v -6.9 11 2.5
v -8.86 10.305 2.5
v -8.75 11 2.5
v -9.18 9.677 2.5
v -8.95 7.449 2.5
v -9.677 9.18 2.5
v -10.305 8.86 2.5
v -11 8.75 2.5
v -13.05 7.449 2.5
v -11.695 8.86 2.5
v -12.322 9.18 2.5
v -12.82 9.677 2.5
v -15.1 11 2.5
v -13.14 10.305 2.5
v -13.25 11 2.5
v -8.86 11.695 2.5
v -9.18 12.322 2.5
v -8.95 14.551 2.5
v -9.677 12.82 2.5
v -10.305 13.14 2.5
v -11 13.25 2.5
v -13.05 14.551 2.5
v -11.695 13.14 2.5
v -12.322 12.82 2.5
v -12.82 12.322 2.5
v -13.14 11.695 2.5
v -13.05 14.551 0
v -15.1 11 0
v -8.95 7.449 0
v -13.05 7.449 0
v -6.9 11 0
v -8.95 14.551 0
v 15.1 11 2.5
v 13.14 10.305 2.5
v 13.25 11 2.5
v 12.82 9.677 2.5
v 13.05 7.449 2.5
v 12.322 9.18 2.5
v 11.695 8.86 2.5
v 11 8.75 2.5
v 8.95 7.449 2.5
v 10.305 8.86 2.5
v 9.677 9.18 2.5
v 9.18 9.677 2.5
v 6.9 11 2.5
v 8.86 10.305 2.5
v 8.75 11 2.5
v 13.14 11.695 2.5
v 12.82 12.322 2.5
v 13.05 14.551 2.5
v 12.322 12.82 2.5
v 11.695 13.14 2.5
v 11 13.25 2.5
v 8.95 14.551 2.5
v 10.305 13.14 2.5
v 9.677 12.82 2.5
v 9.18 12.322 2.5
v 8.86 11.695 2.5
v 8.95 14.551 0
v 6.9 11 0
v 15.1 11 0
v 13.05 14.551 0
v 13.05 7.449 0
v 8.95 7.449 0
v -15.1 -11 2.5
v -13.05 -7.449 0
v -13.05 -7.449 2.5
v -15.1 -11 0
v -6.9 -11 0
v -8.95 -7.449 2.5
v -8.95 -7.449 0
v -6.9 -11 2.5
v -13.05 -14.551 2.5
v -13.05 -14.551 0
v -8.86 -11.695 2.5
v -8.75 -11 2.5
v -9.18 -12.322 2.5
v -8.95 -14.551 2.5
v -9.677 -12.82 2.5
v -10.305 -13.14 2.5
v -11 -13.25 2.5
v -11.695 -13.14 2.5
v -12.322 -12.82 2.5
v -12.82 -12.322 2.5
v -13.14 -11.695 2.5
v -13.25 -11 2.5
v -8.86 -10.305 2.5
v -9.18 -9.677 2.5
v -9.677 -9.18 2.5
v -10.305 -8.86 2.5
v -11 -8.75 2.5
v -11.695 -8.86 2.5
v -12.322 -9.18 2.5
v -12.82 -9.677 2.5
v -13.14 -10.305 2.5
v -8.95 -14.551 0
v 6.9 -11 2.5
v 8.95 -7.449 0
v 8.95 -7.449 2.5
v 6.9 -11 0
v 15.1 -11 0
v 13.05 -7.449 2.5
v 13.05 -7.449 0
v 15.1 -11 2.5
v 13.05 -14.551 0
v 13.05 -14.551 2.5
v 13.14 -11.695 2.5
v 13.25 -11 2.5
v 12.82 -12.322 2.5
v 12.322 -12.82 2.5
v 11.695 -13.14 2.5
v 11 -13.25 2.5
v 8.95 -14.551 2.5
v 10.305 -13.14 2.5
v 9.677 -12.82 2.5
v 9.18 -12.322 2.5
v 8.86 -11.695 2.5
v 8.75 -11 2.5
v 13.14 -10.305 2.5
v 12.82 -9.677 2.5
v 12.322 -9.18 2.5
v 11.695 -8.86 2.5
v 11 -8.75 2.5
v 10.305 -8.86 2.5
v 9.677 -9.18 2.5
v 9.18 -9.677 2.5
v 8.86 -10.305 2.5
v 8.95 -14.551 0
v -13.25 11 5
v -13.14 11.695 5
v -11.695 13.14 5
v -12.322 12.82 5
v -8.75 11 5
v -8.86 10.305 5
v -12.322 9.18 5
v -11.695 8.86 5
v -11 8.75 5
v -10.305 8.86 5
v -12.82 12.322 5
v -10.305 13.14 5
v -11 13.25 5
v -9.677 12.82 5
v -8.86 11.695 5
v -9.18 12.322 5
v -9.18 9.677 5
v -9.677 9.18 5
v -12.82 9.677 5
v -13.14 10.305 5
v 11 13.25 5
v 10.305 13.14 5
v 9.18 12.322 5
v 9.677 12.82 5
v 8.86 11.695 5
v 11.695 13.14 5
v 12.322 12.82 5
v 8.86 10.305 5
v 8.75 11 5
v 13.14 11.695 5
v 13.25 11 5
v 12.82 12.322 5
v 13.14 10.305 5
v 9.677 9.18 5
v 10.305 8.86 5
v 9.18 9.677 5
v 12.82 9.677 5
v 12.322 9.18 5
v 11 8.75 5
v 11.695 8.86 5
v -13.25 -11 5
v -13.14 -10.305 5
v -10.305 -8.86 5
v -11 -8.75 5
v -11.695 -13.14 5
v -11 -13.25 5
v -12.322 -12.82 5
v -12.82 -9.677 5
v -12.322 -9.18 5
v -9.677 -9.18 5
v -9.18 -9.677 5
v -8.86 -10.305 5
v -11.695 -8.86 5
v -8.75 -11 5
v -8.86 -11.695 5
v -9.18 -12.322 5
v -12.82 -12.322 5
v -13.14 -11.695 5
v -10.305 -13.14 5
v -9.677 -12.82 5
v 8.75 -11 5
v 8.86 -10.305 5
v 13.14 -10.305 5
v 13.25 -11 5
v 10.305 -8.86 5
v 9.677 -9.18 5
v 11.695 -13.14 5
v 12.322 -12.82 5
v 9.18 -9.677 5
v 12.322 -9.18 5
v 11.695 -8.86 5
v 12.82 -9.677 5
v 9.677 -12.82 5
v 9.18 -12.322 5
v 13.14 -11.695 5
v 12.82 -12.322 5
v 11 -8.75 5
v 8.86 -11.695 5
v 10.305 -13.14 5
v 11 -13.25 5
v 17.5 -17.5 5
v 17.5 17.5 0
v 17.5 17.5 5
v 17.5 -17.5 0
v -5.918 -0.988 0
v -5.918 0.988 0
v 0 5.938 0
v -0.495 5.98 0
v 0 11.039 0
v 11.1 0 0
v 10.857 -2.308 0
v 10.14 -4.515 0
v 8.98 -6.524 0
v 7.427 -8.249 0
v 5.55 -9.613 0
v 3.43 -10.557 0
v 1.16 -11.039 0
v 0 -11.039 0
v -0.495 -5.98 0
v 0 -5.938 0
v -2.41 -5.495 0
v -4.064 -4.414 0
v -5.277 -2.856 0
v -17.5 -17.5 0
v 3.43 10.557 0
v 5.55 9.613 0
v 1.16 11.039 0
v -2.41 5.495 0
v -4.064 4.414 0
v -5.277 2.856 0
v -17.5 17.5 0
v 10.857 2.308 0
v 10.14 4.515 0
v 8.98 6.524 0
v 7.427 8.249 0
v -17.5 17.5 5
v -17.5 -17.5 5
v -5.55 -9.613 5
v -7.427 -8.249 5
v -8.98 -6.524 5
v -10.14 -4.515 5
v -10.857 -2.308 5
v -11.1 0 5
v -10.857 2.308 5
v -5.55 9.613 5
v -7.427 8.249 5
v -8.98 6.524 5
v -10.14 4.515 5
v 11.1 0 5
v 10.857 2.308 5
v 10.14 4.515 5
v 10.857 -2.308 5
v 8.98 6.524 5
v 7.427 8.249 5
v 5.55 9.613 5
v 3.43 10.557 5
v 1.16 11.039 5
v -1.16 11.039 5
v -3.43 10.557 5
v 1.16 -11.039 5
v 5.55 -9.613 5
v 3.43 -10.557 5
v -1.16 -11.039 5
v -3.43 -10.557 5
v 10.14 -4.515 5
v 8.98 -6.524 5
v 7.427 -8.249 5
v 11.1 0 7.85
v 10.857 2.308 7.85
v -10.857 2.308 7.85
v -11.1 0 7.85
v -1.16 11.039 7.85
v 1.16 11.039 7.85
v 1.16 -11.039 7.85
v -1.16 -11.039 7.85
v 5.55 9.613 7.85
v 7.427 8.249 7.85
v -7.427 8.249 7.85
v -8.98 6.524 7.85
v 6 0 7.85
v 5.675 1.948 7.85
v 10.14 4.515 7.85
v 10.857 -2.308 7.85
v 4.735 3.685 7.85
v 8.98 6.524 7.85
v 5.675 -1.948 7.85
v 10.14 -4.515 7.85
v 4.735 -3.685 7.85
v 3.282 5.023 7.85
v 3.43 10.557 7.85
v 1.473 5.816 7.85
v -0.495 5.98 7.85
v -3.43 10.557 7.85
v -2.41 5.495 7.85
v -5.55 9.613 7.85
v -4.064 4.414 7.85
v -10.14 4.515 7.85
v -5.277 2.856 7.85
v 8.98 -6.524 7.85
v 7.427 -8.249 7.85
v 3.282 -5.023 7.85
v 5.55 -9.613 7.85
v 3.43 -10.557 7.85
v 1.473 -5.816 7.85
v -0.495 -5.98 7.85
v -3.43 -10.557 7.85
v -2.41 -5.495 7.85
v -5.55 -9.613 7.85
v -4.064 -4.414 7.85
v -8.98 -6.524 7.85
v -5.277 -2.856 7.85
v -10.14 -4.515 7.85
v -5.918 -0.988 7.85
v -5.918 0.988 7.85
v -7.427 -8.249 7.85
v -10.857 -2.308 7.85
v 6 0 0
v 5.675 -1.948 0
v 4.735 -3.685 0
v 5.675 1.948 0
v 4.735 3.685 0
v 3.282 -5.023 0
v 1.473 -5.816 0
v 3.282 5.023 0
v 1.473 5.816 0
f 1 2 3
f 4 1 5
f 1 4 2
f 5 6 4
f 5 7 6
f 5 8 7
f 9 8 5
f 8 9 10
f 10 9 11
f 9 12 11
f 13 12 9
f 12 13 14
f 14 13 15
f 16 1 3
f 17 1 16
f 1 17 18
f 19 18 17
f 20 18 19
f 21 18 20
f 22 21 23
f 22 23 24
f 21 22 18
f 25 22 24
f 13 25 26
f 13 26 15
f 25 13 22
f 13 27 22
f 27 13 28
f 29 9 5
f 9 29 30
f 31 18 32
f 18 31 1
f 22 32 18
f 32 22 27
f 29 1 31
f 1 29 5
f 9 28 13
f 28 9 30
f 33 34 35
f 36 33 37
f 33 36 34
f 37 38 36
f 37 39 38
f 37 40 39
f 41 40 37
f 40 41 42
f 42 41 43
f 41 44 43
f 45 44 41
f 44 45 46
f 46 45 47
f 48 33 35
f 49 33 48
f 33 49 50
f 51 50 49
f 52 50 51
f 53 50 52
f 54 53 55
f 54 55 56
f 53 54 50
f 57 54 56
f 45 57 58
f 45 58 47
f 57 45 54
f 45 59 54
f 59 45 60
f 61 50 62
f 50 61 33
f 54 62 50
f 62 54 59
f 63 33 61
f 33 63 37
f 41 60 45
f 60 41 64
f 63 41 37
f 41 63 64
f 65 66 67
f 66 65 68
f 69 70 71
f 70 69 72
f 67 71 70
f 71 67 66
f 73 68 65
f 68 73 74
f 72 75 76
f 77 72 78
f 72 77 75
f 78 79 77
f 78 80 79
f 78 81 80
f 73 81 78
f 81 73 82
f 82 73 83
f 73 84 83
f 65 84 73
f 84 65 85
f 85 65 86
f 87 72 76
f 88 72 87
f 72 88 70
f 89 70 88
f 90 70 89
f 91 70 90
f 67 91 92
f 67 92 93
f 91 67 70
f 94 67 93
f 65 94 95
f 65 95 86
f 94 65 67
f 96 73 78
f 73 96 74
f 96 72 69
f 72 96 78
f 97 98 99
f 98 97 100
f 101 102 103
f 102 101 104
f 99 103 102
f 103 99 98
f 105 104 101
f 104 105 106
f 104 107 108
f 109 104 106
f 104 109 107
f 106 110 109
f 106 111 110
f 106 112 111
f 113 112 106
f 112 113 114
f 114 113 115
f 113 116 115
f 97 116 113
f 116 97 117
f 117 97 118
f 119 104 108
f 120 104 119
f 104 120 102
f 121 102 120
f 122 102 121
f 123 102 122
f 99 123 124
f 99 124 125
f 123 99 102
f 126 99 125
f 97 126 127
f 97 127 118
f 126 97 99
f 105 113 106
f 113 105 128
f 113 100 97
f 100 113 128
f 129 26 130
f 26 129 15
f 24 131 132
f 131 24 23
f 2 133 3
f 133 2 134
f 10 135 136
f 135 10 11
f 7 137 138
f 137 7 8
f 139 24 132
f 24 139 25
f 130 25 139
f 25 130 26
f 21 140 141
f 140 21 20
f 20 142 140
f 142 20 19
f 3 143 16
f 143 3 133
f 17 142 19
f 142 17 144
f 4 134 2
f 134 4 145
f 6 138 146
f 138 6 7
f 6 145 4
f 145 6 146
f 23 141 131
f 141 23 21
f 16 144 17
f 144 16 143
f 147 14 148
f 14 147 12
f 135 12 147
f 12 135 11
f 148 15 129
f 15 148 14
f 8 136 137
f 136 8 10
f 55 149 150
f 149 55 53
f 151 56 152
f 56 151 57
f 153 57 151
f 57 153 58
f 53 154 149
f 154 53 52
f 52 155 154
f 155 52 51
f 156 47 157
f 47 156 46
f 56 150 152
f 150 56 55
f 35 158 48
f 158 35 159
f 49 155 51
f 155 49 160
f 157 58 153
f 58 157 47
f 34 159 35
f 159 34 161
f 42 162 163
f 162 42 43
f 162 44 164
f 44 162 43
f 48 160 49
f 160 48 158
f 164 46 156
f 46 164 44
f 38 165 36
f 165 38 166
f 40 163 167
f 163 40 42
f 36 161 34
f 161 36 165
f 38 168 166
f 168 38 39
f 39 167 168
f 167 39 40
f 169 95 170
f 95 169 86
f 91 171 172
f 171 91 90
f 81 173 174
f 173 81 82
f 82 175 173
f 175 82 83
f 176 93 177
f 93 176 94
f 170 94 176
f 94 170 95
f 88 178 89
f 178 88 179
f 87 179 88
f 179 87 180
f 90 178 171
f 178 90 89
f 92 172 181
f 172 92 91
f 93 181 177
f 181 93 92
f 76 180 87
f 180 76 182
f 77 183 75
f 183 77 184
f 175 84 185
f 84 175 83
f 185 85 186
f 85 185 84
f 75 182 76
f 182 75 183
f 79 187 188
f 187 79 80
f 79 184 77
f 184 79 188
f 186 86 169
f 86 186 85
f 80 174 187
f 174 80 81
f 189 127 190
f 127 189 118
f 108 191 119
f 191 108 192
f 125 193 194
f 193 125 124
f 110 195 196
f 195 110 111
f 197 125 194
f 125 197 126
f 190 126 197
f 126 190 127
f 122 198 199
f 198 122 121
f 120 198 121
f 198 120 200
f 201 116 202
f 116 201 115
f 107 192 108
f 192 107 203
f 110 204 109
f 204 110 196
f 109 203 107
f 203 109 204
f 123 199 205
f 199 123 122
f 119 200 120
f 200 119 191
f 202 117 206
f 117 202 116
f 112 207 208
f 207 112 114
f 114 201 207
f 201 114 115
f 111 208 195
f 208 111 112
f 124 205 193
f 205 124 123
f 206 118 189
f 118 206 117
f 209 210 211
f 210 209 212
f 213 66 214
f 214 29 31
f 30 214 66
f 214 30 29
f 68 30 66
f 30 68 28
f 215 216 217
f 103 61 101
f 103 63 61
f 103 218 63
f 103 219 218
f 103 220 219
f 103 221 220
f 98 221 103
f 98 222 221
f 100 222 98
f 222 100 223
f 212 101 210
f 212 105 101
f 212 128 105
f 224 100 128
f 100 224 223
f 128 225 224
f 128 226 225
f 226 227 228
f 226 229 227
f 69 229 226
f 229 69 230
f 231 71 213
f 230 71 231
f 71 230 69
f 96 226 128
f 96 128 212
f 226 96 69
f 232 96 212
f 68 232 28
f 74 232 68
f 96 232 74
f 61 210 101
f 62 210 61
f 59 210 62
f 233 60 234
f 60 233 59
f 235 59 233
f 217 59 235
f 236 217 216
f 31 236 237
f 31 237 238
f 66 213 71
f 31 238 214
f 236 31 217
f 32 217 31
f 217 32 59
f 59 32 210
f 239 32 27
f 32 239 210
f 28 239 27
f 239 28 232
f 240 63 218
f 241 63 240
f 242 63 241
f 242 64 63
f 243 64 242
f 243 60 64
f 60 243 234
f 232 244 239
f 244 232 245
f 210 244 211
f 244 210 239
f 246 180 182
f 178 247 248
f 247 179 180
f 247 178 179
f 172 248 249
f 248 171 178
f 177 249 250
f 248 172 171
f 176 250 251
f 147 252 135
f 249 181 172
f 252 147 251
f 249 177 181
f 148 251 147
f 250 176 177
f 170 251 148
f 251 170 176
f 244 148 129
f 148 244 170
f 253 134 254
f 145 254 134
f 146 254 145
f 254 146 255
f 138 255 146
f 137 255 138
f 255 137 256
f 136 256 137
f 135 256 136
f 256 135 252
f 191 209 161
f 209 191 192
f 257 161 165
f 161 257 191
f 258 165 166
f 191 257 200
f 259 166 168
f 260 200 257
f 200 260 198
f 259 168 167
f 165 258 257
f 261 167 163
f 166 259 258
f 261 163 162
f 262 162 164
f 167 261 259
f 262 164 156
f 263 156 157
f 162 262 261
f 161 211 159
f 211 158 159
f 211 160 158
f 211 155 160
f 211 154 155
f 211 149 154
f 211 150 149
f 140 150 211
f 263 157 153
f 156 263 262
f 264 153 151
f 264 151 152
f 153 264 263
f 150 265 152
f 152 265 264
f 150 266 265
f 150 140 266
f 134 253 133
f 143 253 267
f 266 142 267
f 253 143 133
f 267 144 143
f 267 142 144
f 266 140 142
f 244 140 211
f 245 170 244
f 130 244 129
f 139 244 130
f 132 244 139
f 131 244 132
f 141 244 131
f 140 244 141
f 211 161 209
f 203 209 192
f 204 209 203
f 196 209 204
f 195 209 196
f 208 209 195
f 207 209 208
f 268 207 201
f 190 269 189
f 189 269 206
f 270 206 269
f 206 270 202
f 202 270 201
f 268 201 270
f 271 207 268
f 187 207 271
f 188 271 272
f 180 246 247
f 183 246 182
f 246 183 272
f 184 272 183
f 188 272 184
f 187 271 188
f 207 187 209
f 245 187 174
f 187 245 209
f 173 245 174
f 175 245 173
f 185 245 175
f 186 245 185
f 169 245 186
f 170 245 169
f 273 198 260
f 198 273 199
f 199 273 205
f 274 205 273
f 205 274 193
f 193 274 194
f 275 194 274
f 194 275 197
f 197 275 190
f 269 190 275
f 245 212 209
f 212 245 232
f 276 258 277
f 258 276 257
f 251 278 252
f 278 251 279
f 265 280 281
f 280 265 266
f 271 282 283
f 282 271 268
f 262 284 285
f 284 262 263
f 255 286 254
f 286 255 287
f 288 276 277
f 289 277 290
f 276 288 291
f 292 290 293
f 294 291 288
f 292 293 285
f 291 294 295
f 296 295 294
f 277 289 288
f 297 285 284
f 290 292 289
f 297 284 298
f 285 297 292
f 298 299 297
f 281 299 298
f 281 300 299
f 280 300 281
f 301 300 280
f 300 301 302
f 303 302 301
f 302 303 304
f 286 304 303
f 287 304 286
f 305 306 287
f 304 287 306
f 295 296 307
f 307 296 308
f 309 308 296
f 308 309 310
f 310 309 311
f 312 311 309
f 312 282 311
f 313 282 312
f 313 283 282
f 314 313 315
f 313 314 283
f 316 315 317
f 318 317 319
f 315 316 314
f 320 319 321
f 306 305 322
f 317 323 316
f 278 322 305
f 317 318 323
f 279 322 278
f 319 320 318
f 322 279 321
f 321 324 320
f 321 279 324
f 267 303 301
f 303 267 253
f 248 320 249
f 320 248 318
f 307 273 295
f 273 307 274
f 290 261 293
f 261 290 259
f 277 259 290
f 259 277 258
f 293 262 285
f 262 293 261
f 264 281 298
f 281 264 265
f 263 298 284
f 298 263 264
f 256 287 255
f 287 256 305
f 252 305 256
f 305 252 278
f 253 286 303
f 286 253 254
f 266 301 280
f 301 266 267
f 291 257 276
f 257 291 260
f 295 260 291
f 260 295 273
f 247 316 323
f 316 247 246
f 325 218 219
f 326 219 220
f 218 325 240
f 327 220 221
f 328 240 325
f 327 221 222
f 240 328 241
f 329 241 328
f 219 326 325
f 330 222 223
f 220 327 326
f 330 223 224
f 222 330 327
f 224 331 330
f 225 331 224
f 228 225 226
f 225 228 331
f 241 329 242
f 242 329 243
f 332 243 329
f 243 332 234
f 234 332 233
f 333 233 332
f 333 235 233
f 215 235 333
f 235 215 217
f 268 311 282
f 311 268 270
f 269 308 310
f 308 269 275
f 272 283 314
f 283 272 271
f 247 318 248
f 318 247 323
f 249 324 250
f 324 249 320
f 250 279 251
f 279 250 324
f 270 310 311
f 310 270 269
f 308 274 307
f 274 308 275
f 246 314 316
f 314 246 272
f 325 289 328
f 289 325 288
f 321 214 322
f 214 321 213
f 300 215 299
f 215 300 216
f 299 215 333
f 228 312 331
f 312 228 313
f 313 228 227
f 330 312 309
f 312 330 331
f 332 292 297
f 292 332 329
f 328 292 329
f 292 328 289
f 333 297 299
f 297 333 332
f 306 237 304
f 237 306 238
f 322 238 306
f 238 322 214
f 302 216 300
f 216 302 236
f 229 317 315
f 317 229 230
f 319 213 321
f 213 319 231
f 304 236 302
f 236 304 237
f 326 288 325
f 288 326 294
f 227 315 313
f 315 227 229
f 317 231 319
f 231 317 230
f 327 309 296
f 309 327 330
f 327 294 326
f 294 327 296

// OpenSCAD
/*
Abbrev.	Inner D.	Outer D.	Thickness	Notes
608		8 mm		22 mm		7 mm	A common roller skate bearing used extensively in RepRaps.
626		6 mm		19 mm		6 mm	 
625		5 mm		16 mm		5 mm	 
624		4 mm		13 mm		5 mm	 
623		3 mm		10 mm		4 mm	 
603		3 mm		9 mm		5 mm	 
*/

bearingInnerDia = 8; 		
bearingOuterDia = 22;	// outer dimensions
bearingThickness = 7;	// thickness
bearingClearance = 0.2;	// clearance around the outer dimensions

bearingDiameter = bearingOuterDia + bearingClearance;
wallThickness = 0.6;	// thickness of the wall

baseHeight = 1.7;	// base height
innerHeight = baseHeight * 2;
outerHeight = bearingThickness + baseHeight;

wallAscent = 3;		// mm to add to the bearing diameter for the outer ring
wallDescent = 0.5;	// mm to add to the bearing diameter for the inner ring

epsilon = 0.1; // small tolerance used for CSG subtraction/addition

clearance = 0.0;

// screw/nut dimensions
// http://www.fairburyfastener.com/xdims_metric_nuts.htm
screw_dia = 4.5;	// M3 = 3 mm, M4 = 4 mm - orig. 3.4
nut_dia = 8.2;		// M3 = 6 mm, M4 = 7.7 mm - orig. 6.5
nut_height = 2.5; 	// M3 = 2.3 mm, M4 = 3 mm - orig. 3

// mounting plate dimensions
plate_height = 5;
plate_length = 35;
plate_width = 35;
screw_space_x = 22;
screw_space_y = 22;

module mount_plate() {
	difference()
	{
		//bottom plate
		translate([-plate_width/2,-plate_length/2,0])
		cube([plate_width,plate_length,plate_height]);

		if (true) {
			// nut traps
			translate([screw_space_x/2,screw_space_y/2,plate_height-nut_height])
			cylinder(r=nut_dia/2, h=nut_height+epsilon, $fn=6);
			translate([-screw_space_x/2,screw_space_y/2,plate_height-nut_height])
			cylinder(r=nut_dia/2, h=nut_height+epsilon, $fn=6);
			translate([screw_space_x/2,-screw_space_y/2,plate_height-nut_height])
			cylinder(r=nut_dia/2, h=nut_height+epsilon, $fn=6);
			translate([-screw_space_x/2,-screw_space_y/2,plate_height-nut_height])
			cylinder(r=nut_dia/2, h=nut_height+epsilon, $fn=6);

			// screw holes
			translate([screw_space_x/2,screw_space_y/2,-epsilon])
			cylinder(r=screw_dia/2, h=plate_height+epsilon, $fn=20);
			translate([-screw_space_x/2,screw_space_y/2,-epsilon])
			cylinder(r=screw_dia/2, h=plate_height+epsilon, $fn=20);
			translate([screw_space_x/2,-screw_space_y/2,-epsilon])
			cylinder(r=screw_dia/2, h=plate_height+epsilon, $fn=20);
			translate([-screw_space_x/2,-screw_space_y/2,-epsilon])
			cylinder(r=screw_dia/2, h=plate_height+epsilon, $fn=20);
		}		
	}
}


module outer()
{
	difference()
	{
		cylinder(r=bearingDiameter/2+2*wallThickness+clearance,h=outerHeight);
		
		// space for the bearing
		translate([0,0,-epsilon])
		cylinder(r=bearingDiameter/2,h=outerHeight+2*epsilon);
		
		// upper rim
		translate([0,0,bearingThickness])
		cylinder(r=bearingDiameter/2+wallThickness+clearance,h=outerHeight);
	}

	difference()
	{
		cylinder(r=bearingDiameter/2+wallAscent,h=baseHeight);
		
		translate([0,0,-epsilon])
		cylinder(r=bearingDiameter/2-wallDescent,h=baseHeight+2*epsilon);
	}
}

module inner()
{
	// bearing cover
	difference()
	{
		cylinder(r=bearingDiameter/2+wallThickness,h=innerHeight);
		
		translate([0,0,-epsilon]) 
		cylinder(r=bearingDiameter/2,h=innerHeight+2*epsilon);
	}

	// base ring which the bearing will rest on
	difference()
	{
		cylinder(r=bearingDiameter/2+wallAscent,h=baseHeight);
		
		translate([0,0,-epsilon]) 
		cylinder(r=bearingDiameter/2-wallDescent,h=baseHeight+2*epsilon);
	}
}

/*
inner();
translate([29,0,0])
outer();
*/

module bearingHolePlate() {
	difference()
	{
		mount_plate();
		translate([0,0,-epsilon]) 
		cylinder(r=bearingDiameter/2,h=bearingThickness+2*epsilon);	
	}
}

mdfDepth = 12.7;

difference() 
{
	union() {
		translate([0,0,plate_height]) rotate([0,180,0]) mount_plate();	
		cylinder(r=bearingDiameter/2,h=plate_height+(mdfDepth-bearingThickness)/2);
	}

	translate([0,0,-epsilon]) 
	cylinder(r=bearingInnerDia/2+2,h=plate_height+bearingThickness+2*epsilon);
}
